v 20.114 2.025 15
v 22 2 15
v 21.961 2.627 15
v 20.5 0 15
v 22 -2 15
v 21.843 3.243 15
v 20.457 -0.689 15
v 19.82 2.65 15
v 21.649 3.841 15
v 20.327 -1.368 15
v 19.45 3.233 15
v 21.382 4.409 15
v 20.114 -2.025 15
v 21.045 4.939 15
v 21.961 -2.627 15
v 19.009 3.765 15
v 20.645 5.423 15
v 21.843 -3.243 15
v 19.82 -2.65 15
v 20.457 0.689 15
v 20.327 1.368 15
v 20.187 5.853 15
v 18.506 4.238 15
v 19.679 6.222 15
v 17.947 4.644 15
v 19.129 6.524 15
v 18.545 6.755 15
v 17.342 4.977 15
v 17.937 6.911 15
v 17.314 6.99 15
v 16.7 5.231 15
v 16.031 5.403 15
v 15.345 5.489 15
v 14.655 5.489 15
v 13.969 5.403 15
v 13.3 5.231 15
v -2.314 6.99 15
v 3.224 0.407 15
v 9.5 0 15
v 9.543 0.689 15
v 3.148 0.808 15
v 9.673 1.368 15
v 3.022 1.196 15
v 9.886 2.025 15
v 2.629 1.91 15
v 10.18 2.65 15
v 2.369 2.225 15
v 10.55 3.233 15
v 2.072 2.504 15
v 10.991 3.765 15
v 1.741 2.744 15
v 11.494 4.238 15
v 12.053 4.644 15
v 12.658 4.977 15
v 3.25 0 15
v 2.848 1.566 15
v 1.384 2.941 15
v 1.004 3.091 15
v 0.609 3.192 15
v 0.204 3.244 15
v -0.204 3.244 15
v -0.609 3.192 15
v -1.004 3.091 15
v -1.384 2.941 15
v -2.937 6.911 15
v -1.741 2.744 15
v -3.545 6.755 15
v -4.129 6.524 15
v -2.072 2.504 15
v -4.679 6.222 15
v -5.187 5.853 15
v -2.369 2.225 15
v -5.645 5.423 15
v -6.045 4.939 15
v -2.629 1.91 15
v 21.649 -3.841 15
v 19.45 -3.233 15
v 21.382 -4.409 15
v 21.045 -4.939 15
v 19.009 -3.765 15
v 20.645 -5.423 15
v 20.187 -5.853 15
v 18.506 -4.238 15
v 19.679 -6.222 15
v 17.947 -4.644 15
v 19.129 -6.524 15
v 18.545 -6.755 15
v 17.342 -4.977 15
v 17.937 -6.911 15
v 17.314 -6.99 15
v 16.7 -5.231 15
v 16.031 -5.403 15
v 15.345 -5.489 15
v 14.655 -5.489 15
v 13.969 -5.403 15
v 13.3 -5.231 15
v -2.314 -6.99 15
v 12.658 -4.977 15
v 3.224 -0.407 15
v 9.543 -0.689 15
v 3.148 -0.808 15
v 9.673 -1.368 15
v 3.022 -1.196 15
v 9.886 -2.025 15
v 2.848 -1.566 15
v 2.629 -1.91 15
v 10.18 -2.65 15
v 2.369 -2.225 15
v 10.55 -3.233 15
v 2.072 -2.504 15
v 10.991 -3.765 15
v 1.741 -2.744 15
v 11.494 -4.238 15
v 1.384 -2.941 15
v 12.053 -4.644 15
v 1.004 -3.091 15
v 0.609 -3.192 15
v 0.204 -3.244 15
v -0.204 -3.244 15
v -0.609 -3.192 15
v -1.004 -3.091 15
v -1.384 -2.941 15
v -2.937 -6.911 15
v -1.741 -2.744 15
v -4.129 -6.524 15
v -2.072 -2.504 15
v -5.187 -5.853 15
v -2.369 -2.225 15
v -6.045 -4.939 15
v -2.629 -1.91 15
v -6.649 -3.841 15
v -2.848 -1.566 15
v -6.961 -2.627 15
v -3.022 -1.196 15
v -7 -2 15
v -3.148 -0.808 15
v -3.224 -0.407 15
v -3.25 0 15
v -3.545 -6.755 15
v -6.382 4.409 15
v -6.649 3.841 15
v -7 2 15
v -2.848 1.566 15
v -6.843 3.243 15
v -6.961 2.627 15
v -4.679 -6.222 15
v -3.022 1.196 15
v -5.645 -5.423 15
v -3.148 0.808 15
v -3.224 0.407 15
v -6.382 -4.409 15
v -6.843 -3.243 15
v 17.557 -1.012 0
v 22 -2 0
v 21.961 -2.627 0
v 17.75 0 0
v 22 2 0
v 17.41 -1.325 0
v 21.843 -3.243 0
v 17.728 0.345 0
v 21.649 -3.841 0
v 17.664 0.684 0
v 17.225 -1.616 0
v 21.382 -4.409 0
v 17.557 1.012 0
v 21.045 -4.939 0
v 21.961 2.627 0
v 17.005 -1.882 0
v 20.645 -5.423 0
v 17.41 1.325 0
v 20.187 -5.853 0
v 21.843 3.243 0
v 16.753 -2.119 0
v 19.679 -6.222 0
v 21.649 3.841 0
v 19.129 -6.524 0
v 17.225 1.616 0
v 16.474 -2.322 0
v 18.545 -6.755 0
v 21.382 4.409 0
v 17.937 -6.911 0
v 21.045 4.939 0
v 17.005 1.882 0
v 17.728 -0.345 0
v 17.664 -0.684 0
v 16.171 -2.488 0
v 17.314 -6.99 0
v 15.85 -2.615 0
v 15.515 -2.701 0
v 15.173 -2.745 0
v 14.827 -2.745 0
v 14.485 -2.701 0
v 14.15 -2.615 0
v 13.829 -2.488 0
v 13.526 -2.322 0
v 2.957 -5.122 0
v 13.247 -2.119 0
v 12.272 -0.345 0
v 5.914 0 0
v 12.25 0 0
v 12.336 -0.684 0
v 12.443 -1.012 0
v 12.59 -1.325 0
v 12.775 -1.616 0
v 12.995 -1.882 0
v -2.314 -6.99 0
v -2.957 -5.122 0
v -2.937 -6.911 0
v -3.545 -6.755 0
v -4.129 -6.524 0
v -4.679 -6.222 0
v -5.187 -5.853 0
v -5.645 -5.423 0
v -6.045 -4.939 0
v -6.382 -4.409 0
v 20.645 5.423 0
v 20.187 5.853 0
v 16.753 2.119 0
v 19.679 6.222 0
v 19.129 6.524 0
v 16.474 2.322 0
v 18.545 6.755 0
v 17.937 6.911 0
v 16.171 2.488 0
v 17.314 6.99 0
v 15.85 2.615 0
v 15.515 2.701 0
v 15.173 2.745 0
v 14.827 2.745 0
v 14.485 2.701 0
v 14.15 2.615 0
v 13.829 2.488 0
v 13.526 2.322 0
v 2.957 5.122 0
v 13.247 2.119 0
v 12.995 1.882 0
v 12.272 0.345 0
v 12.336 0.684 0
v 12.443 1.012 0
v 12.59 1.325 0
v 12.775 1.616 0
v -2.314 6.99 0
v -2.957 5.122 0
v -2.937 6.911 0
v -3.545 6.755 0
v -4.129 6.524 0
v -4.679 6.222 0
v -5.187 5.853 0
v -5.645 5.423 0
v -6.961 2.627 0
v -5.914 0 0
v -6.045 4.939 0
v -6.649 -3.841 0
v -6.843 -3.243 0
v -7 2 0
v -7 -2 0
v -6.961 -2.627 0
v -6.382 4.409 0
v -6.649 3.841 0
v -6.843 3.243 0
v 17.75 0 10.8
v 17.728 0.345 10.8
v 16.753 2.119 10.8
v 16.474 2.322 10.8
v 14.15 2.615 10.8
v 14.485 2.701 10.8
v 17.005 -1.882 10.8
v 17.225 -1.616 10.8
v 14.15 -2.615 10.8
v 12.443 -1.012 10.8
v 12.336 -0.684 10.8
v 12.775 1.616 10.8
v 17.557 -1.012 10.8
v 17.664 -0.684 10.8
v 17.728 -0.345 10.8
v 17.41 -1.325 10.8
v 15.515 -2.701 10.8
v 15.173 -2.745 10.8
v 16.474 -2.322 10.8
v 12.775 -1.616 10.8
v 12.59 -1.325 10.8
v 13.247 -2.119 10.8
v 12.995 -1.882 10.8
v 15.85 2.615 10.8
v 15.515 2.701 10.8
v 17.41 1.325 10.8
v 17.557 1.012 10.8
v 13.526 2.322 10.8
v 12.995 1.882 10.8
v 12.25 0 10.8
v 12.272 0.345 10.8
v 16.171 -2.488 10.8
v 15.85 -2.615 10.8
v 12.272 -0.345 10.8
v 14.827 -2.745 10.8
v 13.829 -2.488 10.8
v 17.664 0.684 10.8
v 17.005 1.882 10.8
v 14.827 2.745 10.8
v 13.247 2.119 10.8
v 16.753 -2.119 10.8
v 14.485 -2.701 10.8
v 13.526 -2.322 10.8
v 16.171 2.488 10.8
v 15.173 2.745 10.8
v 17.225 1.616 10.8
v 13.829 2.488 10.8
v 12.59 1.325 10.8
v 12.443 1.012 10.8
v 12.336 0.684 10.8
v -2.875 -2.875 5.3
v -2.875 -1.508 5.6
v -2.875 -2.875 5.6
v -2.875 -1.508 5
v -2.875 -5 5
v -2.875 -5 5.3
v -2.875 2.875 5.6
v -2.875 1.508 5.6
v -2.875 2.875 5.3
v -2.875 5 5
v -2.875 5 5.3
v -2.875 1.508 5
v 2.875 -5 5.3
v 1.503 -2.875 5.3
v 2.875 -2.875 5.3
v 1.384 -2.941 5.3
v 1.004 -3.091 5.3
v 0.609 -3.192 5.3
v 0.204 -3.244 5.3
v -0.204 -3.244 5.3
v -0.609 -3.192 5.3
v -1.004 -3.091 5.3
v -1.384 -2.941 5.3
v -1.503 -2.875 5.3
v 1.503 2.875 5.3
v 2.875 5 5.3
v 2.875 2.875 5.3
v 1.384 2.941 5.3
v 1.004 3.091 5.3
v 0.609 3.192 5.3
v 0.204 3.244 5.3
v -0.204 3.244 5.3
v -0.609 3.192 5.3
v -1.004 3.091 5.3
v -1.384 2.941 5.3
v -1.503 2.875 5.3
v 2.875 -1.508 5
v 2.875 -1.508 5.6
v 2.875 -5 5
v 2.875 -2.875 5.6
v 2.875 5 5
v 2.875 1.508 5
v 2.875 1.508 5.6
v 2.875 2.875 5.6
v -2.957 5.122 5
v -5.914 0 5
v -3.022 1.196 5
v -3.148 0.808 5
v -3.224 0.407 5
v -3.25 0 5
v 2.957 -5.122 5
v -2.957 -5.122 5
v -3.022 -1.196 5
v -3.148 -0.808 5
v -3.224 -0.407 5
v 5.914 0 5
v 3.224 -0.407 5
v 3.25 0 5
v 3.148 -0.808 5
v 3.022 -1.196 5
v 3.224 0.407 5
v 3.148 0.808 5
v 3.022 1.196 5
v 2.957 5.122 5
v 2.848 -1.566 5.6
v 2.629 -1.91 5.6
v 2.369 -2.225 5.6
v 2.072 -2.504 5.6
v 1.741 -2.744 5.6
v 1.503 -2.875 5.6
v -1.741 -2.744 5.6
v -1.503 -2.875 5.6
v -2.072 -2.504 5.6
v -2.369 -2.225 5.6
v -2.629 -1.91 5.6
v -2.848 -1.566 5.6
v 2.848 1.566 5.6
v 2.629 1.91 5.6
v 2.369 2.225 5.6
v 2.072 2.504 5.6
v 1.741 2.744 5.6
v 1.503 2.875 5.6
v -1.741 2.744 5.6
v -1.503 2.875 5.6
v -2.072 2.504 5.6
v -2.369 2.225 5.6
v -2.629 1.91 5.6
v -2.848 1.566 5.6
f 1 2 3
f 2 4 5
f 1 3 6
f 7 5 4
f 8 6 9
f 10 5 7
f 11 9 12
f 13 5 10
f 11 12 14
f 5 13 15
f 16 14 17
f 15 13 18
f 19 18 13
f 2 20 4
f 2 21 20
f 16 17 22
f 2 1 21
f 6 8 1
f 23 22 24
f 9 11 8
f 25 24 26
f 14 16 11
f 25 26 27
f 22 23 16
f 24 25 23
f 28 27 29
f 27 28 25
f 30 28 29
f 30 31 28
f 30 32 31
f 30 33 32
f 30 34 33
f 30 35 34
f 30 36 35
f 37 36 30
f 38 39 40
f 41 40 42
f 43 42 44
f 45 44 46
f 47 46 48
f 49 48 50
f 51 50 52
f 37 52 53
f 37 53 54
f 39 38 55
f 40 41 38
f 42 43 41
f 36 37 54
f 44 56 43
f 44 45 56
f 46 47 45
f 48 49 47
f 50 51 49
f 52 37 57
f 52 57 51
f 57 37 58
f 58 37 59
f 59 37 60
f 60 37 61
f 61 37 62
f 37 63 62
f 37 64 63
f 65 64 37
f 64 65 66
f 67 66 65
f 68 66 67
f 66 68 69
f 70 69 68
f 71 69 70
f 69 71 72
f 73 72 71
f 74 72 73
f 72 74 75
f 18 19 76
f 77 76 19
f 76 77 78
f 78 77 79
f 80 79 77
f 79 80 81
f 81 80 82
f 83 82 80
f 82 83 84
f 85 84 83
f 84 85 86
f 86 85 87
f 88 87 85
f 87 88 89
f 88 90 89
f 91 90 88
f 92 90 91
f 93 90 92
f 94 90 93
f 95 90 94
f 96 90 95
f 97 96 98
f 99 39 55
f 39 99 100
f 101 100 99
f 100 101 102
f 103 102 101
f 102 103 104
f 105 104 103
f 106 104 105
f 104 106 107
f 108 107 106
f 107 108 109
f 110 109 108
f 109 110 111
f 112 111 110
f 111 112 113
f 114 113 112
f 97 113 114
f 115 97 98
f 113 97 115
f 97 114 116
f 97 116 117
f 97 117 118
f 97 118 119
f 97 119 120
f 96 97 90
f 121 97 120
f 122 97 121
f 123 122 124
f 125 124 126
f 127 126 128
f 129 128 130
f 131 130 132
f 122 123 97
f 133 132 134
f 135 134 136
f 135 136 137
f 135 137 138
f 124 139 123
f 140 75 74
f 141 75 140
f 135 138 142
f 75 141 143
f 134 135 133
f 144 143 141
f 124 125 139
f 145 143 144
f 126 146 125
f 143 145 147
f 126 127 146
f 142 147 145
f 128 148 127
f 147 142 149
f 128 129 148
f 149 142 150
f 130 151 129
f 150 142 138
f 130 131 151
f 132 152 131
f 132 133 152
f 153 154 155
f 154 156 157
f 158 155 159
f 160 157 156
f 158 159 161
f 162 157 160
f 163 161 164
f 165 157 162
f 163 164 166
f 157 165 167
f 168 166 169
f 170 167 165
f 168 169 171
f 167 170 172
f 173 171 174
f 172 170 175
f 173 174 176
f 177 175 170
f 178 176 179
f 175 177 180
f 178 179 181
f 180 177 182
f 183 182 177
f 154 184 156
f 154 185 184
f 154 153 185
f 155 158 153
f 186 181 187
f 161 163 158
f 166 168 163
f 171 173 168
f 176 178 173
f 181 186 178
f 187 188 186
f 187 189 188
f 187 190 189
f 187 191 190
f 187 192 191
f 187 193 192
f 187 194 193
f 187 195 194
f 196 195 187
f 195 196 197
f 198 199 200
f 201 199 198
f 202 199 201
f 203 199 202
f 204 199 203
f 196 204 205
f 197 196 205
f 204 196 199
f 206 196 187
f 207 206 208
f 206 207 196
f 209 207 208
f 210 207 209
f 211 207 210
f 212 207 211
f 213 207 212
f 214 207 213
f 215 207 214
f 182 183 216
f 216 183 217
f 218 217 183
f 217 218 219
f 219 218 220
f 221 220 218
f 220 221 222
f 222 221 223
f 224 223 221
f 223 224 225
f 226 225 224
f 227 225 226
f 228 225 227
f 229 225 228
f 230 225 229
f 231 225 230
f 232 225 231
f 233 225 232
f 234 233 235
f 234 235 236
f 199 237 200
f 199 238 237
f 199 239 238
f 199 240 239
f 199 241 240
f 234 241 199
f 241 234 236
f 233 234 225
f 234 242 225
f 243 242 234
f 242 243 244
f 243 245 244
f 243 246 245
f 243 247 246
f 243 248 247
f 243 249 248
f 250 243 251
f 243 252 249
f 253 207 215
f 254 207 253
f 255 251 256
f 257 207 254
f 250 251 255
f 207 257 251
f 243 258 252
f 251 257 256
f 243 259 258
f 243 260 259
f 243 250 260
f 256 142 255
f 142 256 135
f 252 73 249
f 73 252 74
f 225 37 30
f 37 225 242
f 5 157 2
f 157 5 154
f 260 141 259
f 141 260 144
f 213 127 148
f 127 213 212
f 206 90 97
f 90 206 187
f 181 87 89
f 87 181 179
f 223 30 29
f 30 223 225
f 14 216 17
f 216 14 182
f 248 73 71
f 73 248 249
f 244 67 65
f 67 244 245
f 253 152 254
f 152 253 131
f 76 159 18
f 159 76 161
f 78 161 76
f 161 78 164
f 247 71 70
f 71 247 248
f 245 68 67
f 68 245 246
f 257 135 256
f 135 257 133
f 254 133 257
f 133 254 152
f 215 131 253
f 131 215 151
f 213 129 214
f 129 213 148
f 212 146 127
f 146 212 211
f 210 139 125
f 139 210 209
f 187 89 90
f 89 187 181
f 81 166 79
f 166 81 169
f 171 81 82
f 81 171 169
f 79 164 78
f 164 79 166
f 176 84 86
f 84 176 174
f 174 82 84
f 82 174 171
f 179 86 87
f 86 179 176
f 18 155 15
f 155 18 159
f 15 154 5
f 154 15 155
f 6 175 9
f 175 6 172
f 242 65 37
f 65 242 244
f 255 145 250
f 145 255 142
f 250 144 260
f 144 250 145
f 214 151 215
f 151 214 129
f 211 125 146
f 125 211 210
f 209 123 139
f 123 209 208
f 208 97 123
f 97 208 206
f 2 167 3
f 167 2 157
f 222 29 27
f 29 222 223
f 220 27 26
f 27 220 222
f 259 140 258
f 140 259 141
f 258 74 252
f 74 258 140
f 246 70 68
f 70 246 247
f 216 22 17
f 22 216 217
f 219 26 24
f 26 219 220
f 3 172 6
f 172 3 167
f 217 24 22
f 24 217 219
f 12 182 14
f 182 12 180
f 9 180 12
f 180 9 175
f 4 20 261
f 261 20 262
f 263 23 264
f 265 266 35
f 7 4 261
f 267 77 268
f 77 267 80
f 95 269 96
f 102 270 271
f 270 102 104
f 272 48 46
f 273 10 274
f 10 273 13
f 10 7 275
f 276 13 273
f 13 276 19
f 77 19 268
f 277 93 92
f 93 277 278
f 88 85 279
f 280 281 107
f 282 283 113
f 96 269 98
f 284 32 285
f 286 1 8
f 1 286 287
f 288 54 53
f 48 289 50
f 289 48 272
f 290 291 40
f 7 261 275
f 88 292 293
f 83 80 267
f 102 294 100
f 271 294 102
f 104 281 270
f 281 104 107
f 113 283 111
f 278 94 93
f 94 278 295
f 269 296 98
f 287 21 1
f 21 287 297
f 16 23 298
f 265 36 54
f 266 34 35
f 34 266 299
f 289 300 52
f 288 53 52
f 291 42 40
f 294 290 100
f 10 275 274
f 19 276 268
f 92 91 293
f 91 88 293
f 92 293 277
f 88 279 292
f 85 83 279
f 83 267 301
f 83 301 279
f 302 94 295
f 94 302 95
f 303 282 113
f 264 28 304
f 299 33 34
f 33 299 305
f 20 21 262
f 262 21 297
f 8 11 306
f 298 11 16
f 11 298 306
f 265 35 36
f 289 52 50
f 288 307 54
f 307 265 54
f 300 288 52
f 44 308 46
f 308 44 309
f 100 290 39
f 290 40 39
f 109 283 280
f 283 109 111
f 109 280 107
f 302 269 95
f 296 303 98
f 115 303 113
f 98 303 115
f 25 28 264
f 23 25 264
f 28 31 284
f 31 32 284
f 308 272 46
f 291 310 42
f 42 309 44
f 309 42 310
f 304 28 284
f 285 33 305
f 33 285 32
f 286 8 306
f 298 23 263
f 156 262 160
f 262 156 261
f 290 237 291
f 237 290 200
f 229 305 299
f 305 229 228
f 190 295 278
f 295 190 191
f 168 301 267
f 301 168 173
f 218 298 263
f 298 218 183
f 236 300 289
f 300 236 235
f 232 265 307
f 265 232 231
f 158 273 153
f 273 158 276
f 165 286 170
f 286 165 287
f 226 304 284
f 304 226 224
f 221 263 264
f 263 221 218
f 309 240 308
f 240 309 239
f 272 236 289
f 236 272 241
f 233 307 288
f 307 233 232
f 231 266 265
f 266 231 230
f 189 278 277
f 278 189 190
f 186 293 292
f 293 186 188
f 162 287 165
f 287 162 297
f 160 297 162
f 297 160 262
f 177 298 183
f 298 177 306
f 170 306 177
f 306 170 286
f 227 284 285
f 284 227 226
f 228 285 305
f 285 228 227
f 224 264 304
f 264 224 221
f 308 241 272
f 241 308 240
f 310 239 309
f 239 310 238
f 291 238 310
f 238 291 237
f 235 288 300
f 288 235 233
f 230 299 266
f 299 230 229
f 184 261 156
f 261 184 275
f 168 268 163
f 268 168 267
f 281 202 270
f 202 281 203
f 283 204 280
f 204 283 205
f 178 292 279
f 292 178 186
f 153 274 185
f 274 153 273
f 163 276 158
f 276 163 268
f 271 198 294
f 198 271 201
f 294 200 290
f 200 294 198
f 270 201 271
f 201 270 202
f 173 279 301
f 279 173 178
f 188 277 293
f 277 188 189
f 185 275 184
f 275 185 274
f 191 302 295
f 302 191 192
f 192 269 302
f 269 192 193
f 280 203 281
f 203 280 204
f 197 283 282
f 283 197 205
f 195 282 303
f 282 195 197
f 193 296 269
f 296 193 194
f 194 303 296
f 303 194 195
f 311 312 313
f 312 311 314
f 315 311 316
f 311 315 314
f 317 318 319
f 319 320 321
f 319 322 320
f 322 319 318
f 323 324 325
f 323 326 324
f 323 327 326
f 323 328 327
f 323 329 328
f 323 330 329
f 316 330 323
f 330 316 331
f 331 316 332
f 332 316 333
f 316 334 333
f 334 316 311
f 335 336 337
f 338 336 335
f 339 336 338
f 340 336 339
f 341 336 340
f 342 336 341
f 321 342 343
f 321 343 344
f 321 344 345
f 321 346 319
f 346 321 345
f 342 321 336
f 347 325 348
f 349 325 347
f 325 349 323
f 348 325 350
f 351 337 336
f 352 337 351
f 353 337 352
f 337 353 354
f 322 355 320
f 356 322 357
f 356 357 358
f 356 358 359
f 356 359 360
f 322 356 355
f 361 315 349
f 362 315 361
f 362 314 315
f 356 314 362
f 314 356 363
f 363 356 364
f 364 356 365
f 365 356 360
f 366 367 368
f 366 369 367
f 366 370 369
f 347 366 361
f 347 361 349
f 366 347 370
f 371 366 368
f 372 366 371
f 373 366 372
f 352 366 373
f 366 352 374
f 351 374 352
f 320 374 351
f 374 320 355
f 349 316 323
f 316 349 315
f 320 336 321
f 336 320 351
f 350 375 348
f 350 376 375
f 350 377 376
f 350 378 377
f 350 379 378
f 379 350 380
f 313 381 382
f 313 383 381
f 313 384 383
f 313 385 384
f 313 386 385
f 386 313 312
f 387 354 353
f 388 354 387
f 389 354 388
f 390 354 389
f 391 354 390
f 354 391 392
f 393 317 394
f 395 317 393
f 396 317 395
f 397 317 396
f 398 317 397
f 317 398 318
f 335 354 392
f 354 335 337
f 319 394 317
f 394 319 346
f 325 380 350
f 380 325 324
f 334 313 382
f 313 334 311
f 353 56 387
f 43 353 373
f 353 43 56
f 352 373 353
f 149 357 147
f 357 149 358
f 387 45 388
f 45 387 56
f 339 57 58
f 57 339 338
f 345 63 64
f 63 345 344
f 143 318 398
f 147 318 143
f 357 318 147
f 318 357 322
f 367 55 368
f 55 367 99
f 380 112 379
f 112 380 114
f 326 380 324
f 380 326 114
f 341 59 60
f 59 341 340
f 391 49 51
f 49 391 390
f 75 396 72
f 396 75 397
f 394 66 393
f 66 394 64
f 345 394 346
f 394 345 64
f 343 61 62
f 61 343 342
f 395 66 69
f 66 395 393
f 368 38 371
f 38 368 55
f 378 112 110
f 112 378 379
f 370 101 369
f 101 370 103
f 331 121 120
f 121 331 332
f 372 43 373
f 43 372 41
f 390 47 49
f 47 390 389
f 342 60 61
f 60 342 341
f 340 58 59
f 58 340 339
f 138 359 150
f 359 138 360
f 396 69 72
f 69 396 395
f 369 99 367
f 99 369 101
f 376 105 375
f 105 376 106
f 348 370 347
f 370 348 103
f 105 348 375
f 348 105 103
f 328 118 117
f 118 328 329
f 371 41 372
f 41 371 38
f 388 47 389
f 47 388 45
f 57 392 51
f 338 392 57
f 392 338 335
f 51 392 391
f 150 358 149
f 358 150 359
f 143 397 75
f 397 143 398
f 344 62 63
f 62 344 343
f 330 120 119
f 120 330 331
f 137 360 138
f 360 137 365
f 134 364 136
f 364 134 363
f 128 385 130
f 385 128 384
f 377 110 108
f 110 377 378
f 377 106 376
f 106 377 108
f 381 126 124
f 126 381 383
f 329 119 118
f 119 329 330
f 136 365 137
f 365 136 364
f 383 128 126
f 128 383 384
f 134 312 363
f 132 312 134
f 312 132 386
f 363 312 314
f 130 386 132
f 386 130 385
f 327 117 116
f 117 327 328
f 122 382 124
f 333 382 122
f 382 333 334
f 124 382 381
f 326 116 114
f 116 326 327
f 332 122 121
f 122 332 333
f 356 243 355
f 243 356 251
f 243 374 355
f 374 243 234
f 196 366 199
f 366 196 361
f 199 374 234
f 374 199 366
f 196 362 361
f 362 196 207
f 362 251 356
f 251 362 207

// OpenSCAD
$fn = 50;


difference() {
	union() {
		cylinder(h = 15, r = 7.0000000000);
		translate(v = [7.5000000000, 0.0000000000, 0]) {
			hull() {
				translate(v = [-9.5000000000, 2.0000000000, 0]) {
					cylinder(h = 15, r = 5);
				}
				translate(v = [9.5000000000, 2.0000000000, 0]) {
					cylinder(h = 15, r = 5);
				}
				translate(v = [-9.5000000000, -2.0000000000, 0]) {
					cylinder(h = 15, r = 5);
				}
				translate(v = [9.5000000000, -2.0000000000, 0]) {
					cylinder(h = 15, r = 5);
				}
			}
		}
		translate(v = [7.5000000000, 0.0000000000, 0]) {
			hull() {
				translate(v = [-9.5000000000, 2.0000000000, 0]) {
					cylinder(h = 15, r = 5);
				}
				translate(v = [9.5000000000, 2.0000000000, 0]) {
					cylinder(h = 15, r = 5);
				}
				translate(v = [-9.5000000000, -2.0000000000, 0]) {
					cylinder(h = 15, r = 5);
				}
				translate(v = [9.5000000000, -2.0000000000, 0]) {
					cylinder(h = 15, r = 5);
				}
			}
		}
	}
	union() {
		translate(v = [15.0000000000, 0.0000000000, 15]) {
			rotate(a = [0, 0, 0]) {
				difference() {
					union() {
						#translate(v = [0, 0, -15.0000000000]) {
							cylinder(h = 15, r = 2.2500000000);
						}
						#translate(v = [0, 0, -4.2000000000]) {
							cylinder(h = 4.2000000000, r1 = 2.7500000000, r2 = 5.5000000000);
						}
						#translate(v = [0, 0, -15.0000000000]) {
							cylinder(h = 15, r = 2.7500000000);
						}
						#translate(v = [0, 0, -15.0000000000]) {
							cylinder(h = 15, r = 2.2500000000);
						}
					}
					union();
				}
			}
		}
		translate(v = [15.0000000000, 0.0000000000, 15]) {
			rotate(a = [0, 0, 0]) {
				difference() {
					union() {
						#translate(v = [0, 0, -15.0000000000]) {
							cylinder(h = 15, r = 2.2500000000);
						}
						#translate(v = [0, 0, -4.2000000000]) {
							cylinder(h = 4.2000000000, r1 = 2.7500000000, r2 = 5.5000000000);
						}
						#translate(v = [0, 0, -15.0000000000]) {
							cylinder(h = 15, r = 2.7500000000);
						}
						#translate(v = [0, 0, -15.0000000000]) {
							cylinder(h = 15, r = 2.2500000000);
						}
					}
					union();
				}
			}
		}
		translate(v = [0.0000000000, 0.0000000000, 0]) {
			rotate(a = [0, 0, 0]) {
				difference() {
					union() {
						#translate(v = [-2.8750000000, -5.0000000000, -0.3000000000]) {
							cube(size = [5.7500000000, 10, 0.3000000000]);
						}
						#translate(v = [-2.8750000000, -2.8750000000, -0.6000000000]) {
							cube(size = [5.7500000000, 5.7500000000, 0.3000000000]);
						}
						#translate(v = [-2.8750000000, -5.0000000000, 5]) {
							cube(size = [5.7500000000, 10, 0.3000000000]);
						}
						#translate(v = [-2.8750000000, -2.8750000000, 5.3000000000]) {
							cube(size = [5.7500000000, 5.7500000000, 0.3000000000]);
						}
						#translate(v = [0, 0, -100.0000000000]) {
							cylinder(h = 200, r = 3.2500000000);
						}
						#linear_extrude(height = 5) {
							polygon(points = [[5.9142500000, 0.0000000000], [2.9571250000, 5.1218907443], [-2.9571250000, 5.1218907443], [-5.9142500000, 0.0000000000], [-2.9571250000, -5.1218907443], [2.9571250000, -5.1218907443]]);
						}
						#translate(v = [-2.8750000000, -5.0000000000, -0.3000000000]) {
							cube(size = [5.7500000000, 10, 0.3000000000]);
						}
						#translate(v = [-2.8750000000, -2.8750000000, -0.6000000000]) {
							cube(size = [5.7500000000, 5.7500000000, 0.3000000000]);
						}
						#translate(v = [-2.8750000000, -5.0000000000, 5]) {
							cube(size = [5.7500000000, 10, 0.3000000000]);
						}
						#translate(v = [-2.8750000000, -2.8750000000, 5.3000000000]) {
							cube(size = [5.7500000000, 5.7500000000, 0.3000000000]);
						}
						#translate(v = [0, 0, -100.0000000000]) {
							cylinder(h = 200, r = 3.2500000000);
						}
						#translate(v = [-2.8750000000, -5.0000000000, -0.3000000000]) {
							cube(size = [5.7500000000, 10, 0.3000000000]);
						}
						#translate(v = [-2.8750000000, -2.8750000000, -0.6000000000]) {
							cube(size = [5.7500000000, 5.7500000000, 0.3000000000]);
						}
						#translate(v = [-2.8750000000, -5.0000000000, 5]) {
							cube(size = [5.7500000000, 10, 0.3000000000]);
						}
						#translate(v = [-2.8750000000, -2.8750000000, 5.3000000000]) {
							cube(size = [5.7500000000, 5.7500000000, 0.3000000000]);
						}
						#translate(v = [0, 0, -100.0000000000]) {
							cylinder(h = 200, r = 3.2500000000);
						}
					}
					union();
				}
			}
		}
		translate(v = [0, 0, -100]) {
			cylinder(h = 200, r = 3.2500000000);
		}
		translate(v = [0, 0, -100]) {
			cylinder(h = 200, r = 1.8000000000);
		}
	}
}
